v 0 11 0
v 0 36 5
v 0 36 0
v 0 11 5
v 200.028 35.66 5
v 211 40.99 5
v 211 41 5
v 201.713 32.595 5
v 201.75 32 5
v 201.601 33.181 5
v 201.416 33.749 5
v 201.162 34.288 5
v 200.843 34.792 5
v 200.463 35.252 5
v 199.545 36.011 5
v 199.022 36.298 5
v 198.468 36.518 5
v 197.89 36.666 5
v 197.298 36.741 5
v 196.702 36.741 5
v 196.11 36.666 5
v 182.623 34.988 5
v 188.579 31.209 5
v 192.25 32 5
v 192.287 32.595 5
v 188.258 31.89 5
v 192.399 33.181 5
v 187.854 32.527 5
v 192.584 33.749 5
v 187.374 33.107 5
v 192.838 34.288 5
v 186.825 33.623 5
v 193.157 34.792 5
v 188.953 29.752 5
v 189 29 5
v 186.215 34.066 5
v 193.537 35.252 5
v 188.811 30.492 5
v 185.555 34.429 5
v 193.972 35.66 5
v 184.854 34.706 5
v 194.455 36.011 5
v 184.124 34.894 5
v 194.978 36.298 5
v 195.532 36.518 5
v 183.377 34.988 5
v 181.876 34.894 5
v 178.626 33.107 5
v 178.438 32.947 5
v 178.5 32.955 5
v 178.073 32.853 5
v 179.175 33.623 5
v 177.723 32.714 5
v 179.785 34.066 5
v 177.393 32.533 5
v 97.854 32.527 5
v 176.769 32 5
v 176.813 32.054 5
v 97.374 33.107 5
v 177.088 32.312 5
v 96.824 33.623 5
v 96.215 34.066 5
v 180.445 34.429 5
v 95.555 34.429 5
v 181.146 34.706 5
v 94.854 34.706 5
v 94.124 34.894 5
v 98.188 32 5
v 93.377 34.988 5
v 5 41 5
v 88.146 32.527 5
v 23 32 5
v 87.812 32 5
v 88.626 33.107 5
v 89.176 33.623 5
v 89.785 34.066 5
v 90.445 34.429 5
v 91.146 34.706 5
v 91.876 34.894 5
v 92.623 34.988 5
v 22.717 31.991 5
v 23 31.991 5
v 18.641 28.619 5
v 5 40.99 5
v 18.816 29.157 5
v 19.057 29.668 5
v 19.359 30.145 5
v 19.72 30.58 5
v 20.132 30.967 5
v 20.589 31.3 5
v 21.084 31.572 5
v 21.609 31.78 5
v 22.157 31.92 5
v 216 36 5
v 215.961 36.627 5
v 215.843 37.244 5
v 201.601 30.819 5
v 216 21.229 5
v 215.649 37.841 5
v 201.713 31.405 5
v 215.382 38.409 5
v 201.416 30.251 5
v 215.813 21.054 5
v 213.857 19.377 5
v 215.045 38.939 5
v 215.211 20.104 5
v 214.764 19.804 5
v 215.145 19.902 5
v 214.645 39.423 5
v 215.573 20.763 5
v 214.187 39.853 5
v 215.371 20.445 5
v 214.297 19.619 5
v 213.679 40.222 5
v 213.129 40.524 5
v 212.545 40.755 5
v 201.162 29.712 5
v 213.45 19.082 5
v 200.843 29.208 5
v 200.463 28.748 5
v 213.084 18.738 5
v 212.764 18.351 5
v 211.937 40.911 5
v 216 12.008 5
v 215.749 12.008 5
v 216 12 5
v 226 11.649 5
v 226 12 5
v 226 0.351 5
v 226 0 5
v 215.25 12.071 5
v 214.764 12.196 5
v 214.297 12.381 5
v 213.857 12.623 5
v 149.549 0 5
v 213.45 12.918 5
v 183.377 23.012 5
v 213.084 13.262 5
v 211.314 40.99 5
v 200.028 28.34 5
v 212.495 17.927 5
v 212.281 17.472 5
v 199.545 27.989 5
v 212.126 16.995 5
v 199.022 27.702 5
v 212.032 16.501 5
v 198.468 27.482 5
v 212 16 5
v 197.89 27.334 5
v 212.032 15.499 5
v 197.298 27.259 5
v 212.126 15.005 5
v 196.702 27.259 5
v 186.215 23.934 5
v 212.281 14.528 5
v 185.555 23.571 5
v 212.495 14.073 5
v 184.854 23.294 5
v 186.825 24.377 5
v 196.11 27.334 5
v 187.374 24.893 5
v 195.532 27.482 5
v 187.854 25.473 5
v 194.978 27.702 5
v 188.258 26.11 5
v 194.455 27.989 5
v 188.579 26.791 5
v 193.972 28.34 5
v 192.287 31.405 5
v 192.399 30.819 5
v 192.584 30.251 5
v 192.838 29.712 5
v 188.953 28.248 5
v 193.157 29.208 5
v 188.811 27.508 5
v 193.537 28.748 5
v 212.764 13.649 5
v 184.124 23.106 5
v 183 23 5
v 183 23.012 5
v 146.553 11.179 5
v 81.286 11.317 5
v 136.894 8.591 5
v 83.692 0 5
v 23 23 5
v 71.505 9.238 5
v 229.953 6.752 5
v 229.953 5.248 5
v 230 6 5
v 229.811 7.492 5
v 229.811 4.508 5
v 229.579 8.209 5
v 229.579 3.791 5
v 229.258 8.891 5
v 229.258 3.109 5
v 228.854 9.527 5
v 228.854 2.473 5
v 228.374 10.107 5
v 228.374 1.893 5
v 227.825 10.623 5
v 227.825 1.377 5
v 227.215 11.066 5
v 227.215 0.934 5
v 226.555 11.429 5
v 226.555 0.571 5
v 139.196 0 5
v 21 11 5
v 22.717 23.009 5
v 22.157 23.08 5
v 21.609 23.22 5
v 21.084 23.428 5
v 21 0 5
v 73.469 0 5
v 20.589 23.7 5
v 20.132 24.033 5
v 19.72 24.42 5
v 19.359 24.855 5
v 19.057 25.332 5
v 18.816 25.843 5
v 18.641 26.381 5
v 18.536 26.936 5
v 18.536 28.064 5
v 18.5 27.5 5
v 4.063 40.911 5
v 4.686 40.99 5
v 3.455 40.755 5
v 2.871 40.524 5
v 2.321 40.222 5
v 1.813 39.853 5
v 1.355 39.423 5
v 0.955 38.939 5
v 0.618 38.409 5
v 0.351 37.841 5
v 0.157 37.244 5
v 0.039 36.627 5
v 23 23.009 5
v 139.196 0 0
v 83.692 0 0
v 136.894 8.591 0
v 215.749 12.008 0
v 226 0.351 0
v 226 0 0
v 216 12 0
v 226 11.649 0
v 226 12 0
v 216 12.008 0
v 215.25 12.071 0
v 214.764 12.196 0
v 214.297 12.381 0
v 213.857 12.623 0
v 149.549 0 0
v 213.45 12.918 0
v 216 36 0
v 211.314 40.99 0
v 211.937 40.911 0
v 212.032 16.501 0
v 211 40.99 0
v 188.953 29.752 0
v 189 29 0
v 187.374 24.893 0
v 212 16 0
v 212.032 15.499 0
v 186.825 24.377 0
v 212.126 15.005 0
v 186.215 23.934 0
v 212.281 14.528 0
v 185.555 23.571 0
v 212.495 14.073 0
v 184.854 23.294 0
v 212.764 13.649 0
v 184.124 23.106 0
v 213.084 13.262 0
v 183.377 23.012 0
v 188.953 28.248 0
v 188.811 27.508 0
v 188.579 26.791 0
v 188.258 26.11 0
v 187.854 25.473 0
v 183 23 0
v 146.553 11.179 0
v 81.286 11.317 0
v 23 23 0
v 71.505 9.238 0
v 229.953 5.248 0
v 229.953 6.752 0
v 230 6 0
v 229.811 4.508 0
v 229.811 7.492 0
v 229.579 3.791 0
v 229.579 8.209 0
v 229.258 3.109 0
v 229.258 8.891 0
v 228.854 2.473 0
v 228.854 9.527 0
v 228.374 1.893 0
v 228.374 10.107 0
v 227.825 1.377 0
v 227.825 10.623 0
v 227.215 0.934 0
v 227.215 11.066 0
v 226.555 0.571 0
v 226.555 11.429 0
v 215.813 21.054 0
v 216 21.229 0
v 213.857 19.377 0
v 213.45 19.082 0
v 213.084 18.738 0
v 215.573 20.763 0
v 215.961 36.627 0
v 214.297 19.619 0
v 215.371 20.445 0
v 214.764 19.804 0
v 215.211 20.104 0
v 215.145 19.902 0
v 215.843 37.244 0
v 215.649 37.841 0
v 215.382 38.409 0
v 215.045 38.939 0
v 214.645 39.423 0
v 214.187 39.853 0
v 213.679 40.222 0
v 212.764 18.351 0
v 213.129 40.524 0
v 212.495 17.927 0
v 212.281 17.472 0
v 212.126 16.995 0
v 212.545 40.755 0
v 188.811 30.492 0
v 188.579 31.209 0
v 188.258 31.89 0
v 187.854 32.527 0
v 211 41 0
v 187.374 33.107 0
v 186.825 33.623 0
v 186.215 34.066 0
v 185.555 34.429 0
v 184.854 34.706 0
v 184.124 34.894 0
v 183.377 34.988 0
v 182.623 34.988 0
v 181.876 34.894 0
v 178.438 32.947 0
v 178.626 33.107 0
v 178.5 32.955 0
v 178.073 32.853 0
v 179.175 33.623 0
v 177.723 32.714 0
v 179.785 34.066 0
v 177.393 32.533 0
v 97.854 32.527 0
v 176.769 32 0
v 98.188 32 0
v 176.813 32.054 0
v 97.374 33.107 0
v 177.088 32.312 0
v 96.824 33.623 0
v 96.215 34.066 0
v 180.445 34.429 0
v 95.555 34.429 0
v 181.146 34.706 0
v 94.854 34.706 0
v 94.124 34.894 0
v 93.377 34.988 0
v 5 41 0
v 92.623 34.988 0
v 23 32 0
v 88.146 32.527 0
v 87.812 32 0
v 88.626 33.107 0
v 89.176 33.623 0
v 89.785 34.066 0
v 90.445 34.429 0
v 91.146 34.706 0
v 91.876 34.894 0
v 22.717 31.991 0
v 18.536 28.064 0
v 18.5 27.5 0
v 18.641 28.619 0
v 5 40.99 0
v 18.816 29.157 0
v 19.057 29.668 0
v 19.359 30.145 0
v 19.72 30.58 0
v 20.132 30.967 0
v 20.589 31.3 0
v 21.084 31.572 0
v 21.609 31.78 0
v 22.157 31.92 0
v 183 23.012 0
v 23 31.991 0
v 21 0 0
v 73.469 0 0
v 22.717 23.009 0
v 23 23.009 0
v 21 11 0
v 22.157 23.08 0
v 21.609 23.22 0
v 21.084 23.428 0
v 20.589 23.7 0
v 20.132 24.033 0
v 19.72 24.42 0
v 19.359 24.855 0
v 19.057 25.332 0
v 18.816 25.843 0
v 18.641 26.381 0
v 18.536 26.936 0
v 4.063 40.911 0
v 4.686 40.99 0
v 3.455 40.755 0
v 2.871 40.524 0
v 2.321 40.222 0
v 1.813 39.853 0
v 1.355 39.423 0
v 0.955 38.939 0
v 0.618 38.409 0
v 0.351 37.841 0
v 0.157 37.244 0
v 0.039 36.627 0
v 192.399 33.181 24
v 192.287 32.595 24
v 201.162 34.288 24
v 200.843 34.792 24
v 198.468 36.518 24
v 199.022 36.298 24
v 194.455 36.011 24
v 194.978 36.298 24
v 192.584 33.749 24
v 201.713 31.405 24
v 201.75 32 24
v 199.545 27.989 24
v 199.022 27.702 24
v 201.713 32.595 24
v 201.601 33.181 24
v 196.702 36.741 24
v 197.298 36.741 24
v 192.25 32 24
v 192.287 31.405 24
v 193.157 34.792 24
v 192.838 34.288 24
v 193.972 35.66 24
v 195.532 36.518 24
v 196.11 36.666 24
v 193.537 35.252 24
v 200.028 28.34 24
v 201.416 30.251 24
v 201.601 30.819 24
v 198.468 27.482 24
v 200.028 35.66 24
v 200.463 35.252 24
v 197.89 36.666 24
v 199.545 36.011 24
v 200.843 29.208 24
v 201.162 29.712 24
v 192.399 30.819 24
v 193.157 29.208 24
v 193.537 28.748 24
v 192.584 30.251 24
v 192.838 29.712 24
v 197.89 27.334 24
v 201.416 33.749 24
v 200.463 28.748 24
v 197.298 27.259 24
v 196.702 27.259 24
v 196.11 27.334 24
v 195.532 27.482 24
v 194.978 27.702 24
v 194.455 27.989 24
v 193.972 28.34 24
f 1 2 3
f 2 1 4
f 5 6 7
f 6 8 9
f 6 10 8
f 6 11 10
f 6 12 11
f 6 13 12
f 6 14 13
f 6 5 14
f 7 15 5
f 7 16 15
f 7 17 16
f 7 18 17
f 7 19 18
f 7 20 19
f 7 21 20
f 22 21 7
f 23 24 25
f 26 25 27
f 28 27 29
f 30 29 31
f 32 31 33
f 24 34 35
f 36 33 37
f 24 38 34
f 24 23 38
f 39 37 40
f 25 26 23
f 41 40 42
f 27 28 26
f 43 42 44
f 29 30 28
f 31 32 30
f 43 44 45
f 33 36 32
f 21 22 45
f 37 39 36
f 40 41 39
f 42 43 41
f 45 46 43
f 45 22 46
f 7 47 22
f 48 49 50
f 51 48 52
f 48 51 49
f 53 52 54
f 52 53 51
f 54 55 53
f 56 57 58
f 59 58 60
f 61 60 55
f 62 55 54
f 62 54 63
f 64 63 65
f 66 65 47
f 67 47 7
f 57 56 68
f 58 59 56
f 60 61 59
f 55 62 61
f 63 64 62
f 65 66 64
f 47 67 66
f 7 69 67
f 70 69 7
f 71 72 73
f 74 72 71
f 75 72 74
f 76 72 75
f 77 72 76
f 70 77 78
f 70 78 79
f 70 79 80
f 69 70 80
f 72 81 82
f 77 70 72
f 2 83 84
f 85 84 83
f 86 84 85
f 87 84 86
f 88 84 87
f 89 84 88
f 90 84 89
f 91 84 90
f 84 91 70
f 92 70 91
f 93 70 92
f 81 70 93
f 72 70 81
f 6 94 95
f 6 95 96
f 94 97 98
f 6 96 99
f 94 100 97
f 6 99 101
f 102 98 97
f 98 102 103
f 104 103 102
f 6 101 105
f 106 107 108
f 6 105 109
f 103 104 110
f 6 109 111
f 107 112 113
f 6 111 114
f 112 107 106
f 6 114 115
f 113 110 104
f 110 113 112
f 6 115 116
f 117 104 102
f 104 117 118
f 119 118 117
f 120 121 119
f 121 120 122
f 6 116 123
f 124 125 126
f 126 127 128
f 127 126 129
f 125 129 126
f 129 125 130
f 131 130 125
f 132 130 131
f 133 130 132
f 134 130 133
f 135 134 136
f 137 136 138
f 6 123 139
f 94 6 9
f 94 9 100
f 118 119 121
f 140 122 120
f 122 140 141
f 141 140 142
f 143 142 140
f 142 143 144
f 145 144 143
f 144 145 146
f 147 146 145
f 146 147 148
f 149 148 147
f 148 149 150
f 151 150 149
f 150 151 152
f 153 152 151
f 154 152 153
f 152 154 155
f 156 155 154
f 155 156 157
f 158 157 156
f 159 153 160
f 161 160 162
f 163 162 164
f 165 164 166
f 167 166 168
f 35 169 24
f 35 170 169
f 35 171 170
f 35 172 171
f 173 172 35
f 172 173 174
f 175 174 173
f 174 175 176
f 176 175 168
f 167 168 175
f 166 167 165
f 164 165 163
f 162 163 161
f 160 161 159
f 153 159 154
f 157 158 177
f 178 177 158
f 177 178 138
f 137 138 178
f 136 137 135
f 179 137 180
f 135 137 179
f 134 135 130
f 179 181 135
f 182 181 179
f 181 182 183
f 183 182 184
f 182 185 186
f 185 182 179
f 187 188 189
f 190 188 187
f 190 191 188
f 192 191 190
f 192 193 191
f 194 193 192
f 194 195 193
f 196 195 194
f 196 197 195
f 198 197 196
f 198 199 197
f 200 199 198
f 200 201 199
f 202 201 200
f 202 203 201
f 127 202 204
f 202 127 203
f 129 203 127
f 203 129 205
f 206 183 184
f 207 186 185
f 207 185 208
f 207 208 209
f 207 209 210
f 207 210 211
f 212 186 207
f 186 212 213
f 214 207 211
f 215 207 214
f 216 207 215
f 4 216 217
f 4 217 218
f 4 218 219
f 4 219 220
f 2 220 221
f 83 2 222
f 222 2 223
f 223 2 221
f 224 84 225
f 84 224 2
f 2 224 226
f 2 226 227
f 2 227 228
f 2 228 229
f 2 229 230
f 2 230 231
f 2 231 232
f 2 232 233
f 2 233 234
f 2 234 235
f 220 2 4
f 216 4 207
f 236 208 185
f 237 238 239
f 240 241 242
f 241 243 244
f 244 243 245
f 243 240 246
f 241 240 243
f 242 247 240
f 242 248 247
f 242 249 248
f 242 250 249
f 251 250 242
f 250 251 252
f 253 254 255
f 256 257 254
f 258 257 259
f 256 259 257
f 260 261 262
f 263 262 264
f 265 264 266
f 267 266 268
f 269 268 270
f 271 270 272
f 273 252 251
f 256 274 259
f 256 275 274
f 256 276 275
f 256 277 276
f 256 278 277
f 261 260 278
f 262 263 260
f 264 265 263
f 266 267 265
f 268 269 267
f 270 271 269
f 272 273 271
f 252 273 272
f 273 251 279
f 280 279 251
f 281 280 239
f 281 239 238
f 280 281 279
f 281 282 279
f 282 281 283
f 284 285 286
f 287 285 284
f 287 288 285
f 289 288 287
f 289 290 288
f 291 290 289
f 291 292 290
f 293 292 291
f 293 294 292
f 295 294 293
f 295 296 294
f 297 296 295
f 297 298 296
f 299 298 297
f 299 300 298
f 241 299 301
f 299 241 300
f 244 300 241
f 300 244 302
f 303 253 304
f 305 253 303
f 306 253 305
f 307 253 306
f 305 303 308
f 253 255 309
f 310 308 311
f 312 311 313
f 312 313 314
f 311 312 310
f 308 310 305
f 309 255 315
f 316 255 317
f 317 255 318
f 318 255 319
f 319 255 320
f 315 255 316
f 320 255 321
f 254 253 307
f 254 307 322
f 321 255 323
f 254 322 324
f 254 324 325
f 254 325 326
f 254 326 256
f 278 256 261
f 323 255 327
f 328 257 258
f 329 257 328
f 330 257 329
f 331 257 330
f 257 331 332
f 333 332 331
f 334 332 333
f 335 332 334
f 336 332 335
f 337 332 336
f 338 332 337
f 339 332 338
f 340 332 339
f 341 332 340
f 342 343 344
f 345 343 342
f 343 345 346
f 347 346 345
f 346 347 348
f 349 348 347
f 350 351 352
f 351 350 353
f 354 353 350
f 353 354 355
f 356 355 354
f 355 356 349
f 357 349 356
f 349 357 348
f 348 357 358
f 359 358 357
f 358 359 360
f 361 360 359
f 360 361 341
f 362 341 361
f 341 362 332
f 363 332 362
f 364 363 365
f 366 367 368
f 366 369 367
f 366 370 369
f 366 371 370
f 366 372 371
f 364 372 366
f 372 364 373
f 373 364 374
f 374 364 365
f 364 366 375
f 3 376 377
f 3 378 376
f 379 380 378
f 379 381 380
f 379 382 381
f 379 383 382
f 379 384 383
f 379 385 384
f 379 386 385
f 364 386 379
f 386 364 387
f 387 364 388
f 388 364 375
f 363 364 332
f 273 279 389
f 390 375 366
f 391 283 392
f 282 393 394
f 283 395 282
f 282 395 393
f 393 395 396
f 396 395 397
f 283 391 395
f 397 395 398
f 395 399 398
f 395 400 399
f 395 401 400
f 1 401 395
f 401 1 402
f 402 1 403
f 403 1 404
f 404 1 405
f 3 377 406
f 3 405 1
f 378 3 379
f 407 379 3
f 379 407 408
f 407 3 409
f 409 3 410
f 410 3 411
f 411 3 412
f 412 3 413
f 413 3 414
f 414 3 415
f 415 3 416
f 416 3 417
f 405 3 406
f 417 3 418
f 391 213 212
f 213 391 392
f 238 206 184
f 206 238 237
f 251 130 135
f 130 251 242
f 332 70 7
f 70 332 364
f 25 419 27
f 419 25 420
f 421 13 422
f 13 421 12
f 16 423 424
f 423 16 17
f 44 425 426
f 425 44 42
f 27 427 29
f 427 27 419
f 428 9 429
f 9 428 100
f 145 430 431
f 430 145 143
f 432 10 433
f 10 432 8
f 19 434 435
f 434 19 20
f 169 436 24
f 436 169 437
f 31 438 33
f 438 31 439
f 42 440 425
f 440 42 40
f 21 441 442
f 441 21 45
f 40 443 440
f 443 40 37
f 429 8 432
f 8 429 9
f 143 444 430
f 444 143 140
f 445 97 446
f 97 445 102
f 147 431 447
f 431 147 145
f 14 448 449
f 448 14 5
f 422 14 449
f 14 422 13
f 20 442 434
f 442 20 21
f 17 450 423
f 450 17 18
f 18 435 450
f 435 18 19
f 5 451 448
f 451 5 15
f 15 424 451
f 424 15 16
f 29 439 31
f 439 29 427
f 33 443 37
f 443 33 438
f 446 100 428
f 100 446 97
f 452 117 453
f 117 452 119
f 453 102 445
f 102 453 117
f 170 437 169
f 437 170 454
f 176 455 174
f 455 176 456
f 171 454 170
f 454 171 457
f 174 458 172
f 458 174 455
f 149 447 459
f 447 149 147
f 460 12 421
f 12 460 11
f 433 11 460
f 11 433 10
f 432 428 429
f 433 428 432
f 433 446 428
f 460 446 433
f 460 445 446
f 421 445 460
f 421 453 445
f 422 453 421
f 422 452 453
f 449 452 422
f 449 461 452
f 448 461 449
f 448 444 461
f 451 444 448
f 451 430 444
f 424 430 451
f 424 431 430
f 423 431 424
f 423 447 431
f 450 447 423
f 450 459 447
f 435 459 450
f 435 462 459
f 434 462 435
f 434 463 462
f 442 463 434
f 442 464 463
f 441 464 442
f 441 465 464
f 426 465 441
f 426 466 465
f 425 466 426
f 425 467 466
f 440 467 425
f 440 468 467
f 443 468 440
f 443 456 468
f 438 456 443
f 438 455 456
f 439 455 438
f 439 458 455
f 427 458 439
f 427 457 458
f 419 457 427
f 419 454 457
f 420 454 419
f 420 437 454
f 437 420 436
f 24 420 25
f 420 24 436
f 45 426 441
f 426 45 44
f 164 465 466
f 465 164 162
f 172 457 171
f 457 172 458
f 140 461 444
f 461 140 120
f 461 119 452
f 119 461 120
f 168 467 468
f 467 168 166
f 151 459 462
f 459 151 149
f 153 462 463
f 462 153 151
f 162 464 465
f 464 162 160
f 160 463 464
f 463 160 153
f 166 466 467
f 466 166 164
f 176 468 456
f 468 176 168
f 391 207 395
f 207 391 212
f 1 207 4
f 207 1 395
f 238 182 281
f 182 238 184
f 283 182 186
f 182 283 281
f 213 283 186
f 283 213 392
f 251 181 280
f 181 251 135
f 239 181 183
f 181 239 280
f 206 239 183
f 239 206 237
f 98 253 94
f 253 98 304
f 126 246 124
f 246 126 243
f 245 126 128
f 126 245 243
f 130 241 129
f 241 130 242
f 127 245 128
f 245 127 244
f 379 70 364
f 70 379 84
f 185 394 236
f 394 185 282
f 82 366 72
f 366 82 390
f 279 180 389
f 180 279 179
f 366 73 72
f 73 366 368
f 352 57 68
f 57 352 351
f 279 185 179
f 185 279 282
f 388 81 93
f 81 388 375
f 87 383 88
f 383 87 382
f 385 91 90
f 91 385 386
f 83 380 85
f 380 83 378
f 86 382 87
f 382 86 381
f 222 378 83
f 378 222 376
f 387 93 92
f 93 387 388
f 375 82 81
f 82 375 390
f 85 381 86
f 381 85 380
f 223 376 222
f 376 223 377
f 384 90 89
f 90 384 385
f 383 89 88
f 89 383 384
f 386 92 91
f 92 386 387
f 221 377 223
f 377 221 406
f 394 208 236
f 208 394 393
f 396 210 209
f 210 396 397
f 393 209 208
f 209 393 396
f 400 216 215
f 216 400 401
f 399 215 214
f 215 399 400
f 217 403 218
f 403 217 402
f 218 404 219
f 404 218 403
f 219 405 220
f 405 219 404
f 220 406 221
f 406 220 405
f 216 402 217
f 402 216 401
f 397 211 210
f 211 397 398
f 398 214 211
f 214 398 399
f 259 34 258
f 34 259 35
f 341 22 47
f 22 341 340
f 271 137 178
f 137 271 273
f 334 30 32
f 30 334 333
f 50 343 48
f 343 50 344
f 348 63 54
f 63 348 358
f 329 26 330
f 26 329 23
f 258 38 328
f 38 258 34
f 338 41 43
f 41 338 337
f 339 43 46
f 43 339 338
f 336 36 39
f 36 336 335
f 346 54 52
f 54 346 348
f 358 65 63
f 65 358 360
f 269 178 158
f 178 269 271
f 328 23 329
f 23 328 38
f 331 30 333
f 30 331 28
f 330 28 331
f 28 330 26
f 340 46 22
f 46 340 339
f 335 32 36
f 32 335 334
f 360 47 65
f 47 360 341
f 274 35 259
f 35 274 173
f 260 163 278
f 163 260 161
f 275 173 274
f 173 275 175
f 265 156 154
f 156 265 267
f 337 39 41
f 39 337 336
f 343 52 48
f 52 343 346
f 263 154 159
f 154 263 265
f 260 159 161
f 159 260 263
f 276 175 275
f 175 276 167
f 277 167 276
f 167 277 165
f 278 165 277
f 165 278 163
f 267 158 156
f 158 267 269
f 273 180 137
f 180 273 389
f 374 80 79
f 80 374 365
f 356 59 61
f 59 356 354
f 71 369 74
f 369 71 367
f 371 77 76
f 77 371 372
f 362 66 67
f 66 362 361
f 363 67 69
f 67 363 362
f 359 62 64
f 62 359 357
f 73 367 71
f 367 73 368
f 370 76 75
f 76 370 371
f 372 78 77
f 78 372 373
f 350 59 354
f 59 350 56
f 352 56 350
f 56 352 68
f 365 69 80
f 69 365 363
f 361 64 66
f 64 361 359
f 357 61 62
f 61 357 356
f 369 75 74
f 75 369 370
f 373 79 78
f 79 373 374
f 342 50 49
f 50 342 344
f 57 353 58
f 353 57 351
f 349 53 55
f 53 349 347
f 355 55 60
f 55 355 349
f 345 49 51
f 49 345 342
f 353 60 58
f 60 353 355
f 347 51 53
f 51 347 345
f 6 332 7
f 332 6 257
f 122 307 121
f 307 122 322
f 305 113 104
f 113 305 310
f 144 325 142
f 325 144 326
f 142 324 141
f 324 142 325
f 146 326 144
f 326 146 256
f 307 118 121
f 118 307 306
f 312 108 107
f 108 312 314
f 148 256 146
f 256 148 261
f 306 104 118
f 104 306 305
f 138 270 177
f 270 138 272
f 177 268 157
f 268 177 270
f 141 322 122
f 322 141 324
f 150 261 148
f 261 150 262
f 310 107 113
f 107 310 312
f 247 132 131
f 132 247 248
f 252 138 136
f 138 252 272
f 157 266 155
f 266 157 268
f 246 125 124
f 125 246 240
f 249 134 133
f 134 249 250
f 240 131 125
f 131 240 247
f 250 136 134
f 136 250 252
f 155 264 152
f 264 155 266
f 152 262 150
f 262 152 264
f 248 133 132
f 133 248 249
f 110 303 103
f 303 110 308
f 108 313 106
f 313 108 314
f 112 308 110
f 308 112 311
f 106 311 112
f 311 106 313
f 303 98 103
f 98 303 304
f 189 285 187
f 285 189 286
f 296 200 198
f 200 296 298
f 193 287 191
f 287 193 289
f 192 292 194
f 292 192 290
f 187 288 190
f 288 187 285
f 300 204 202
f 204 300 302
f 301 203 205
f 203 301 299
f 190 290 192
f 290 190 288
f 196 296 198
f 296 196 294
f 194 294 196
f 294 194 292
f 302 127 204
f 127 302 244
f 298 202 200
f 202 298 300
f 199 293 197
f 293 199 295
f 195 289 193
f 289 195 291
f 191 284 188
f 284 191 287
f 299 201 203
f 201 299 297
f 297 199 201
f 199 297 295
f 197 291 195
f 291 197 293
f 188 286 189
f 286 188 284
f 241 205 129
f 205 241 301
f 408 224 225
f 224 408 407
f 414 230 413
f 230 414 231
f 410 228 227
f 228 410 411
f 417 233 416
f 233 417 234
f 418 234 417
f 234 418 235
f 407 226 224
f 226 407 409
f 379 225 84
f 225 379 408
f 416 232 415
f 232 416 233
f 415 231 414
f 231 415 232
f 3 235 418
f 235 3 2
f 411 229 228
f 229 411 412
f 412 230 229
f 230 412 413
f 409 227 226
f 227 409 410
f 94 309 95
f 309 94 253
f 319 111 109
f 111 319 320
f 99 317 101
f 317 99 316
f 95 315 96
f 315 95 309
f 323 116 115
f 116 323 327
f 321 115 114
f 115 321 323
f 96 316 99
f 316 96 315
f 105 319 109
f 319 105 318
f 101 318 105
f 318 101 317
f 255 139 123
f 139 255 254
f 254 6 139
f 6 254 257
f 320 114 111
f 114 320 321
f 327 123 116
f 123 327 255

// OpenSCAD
$fn=50;

difference() {
    union () {
        cube([230,41,5]);
        translate([197,32,0]) cylinder(24,9.5/2,9.5/2);
    }
    cube([21,11,5]);
    translate([74,-2.5,0]) rotate(12, [0,0,1]) cube([10,12,5]);
    translate([140,-3,0]) rotate(15, [0,0,1]) cube([10,12,5]);
    translate([216,12,0]) cube([14,29,5]);
    translate([226,0,0]) cube([5,12,5]);
    translate([0,36,0]) cube([5,5,5]);
    
    translate([23,23,0]) cube([160,9,5]);
    translate([23,27.5,0]) cylinder(5,9/2,9/2);
    translate([183,29,0]) cylinder(5,12/2,12/2);
    translate([93,29,0]) cylinder(5,12/2,12/2);
    translate([179,30,0]) cylinder(5,6/2,6/2);
    
    translate([211,36,0]) cube([5,5,5]);
    translate([216,16,0]) cylinder(5,8/2,8/2);
    translate([218,19,0]) cylinder(5,6/2,6/2);
    //translate([197,32,0]) cylinder(22,8/2,8/2);
    //translate([197,32,0]) cylinder(3,10/2,8/2);
}
translate([224,6,0]) cylinder(5,12/2,12/2);
translate([5,36,0]) cylinder(5,10/2,10/2);
translate([211,36,0]) cylinder(5,10/2,10/2);
